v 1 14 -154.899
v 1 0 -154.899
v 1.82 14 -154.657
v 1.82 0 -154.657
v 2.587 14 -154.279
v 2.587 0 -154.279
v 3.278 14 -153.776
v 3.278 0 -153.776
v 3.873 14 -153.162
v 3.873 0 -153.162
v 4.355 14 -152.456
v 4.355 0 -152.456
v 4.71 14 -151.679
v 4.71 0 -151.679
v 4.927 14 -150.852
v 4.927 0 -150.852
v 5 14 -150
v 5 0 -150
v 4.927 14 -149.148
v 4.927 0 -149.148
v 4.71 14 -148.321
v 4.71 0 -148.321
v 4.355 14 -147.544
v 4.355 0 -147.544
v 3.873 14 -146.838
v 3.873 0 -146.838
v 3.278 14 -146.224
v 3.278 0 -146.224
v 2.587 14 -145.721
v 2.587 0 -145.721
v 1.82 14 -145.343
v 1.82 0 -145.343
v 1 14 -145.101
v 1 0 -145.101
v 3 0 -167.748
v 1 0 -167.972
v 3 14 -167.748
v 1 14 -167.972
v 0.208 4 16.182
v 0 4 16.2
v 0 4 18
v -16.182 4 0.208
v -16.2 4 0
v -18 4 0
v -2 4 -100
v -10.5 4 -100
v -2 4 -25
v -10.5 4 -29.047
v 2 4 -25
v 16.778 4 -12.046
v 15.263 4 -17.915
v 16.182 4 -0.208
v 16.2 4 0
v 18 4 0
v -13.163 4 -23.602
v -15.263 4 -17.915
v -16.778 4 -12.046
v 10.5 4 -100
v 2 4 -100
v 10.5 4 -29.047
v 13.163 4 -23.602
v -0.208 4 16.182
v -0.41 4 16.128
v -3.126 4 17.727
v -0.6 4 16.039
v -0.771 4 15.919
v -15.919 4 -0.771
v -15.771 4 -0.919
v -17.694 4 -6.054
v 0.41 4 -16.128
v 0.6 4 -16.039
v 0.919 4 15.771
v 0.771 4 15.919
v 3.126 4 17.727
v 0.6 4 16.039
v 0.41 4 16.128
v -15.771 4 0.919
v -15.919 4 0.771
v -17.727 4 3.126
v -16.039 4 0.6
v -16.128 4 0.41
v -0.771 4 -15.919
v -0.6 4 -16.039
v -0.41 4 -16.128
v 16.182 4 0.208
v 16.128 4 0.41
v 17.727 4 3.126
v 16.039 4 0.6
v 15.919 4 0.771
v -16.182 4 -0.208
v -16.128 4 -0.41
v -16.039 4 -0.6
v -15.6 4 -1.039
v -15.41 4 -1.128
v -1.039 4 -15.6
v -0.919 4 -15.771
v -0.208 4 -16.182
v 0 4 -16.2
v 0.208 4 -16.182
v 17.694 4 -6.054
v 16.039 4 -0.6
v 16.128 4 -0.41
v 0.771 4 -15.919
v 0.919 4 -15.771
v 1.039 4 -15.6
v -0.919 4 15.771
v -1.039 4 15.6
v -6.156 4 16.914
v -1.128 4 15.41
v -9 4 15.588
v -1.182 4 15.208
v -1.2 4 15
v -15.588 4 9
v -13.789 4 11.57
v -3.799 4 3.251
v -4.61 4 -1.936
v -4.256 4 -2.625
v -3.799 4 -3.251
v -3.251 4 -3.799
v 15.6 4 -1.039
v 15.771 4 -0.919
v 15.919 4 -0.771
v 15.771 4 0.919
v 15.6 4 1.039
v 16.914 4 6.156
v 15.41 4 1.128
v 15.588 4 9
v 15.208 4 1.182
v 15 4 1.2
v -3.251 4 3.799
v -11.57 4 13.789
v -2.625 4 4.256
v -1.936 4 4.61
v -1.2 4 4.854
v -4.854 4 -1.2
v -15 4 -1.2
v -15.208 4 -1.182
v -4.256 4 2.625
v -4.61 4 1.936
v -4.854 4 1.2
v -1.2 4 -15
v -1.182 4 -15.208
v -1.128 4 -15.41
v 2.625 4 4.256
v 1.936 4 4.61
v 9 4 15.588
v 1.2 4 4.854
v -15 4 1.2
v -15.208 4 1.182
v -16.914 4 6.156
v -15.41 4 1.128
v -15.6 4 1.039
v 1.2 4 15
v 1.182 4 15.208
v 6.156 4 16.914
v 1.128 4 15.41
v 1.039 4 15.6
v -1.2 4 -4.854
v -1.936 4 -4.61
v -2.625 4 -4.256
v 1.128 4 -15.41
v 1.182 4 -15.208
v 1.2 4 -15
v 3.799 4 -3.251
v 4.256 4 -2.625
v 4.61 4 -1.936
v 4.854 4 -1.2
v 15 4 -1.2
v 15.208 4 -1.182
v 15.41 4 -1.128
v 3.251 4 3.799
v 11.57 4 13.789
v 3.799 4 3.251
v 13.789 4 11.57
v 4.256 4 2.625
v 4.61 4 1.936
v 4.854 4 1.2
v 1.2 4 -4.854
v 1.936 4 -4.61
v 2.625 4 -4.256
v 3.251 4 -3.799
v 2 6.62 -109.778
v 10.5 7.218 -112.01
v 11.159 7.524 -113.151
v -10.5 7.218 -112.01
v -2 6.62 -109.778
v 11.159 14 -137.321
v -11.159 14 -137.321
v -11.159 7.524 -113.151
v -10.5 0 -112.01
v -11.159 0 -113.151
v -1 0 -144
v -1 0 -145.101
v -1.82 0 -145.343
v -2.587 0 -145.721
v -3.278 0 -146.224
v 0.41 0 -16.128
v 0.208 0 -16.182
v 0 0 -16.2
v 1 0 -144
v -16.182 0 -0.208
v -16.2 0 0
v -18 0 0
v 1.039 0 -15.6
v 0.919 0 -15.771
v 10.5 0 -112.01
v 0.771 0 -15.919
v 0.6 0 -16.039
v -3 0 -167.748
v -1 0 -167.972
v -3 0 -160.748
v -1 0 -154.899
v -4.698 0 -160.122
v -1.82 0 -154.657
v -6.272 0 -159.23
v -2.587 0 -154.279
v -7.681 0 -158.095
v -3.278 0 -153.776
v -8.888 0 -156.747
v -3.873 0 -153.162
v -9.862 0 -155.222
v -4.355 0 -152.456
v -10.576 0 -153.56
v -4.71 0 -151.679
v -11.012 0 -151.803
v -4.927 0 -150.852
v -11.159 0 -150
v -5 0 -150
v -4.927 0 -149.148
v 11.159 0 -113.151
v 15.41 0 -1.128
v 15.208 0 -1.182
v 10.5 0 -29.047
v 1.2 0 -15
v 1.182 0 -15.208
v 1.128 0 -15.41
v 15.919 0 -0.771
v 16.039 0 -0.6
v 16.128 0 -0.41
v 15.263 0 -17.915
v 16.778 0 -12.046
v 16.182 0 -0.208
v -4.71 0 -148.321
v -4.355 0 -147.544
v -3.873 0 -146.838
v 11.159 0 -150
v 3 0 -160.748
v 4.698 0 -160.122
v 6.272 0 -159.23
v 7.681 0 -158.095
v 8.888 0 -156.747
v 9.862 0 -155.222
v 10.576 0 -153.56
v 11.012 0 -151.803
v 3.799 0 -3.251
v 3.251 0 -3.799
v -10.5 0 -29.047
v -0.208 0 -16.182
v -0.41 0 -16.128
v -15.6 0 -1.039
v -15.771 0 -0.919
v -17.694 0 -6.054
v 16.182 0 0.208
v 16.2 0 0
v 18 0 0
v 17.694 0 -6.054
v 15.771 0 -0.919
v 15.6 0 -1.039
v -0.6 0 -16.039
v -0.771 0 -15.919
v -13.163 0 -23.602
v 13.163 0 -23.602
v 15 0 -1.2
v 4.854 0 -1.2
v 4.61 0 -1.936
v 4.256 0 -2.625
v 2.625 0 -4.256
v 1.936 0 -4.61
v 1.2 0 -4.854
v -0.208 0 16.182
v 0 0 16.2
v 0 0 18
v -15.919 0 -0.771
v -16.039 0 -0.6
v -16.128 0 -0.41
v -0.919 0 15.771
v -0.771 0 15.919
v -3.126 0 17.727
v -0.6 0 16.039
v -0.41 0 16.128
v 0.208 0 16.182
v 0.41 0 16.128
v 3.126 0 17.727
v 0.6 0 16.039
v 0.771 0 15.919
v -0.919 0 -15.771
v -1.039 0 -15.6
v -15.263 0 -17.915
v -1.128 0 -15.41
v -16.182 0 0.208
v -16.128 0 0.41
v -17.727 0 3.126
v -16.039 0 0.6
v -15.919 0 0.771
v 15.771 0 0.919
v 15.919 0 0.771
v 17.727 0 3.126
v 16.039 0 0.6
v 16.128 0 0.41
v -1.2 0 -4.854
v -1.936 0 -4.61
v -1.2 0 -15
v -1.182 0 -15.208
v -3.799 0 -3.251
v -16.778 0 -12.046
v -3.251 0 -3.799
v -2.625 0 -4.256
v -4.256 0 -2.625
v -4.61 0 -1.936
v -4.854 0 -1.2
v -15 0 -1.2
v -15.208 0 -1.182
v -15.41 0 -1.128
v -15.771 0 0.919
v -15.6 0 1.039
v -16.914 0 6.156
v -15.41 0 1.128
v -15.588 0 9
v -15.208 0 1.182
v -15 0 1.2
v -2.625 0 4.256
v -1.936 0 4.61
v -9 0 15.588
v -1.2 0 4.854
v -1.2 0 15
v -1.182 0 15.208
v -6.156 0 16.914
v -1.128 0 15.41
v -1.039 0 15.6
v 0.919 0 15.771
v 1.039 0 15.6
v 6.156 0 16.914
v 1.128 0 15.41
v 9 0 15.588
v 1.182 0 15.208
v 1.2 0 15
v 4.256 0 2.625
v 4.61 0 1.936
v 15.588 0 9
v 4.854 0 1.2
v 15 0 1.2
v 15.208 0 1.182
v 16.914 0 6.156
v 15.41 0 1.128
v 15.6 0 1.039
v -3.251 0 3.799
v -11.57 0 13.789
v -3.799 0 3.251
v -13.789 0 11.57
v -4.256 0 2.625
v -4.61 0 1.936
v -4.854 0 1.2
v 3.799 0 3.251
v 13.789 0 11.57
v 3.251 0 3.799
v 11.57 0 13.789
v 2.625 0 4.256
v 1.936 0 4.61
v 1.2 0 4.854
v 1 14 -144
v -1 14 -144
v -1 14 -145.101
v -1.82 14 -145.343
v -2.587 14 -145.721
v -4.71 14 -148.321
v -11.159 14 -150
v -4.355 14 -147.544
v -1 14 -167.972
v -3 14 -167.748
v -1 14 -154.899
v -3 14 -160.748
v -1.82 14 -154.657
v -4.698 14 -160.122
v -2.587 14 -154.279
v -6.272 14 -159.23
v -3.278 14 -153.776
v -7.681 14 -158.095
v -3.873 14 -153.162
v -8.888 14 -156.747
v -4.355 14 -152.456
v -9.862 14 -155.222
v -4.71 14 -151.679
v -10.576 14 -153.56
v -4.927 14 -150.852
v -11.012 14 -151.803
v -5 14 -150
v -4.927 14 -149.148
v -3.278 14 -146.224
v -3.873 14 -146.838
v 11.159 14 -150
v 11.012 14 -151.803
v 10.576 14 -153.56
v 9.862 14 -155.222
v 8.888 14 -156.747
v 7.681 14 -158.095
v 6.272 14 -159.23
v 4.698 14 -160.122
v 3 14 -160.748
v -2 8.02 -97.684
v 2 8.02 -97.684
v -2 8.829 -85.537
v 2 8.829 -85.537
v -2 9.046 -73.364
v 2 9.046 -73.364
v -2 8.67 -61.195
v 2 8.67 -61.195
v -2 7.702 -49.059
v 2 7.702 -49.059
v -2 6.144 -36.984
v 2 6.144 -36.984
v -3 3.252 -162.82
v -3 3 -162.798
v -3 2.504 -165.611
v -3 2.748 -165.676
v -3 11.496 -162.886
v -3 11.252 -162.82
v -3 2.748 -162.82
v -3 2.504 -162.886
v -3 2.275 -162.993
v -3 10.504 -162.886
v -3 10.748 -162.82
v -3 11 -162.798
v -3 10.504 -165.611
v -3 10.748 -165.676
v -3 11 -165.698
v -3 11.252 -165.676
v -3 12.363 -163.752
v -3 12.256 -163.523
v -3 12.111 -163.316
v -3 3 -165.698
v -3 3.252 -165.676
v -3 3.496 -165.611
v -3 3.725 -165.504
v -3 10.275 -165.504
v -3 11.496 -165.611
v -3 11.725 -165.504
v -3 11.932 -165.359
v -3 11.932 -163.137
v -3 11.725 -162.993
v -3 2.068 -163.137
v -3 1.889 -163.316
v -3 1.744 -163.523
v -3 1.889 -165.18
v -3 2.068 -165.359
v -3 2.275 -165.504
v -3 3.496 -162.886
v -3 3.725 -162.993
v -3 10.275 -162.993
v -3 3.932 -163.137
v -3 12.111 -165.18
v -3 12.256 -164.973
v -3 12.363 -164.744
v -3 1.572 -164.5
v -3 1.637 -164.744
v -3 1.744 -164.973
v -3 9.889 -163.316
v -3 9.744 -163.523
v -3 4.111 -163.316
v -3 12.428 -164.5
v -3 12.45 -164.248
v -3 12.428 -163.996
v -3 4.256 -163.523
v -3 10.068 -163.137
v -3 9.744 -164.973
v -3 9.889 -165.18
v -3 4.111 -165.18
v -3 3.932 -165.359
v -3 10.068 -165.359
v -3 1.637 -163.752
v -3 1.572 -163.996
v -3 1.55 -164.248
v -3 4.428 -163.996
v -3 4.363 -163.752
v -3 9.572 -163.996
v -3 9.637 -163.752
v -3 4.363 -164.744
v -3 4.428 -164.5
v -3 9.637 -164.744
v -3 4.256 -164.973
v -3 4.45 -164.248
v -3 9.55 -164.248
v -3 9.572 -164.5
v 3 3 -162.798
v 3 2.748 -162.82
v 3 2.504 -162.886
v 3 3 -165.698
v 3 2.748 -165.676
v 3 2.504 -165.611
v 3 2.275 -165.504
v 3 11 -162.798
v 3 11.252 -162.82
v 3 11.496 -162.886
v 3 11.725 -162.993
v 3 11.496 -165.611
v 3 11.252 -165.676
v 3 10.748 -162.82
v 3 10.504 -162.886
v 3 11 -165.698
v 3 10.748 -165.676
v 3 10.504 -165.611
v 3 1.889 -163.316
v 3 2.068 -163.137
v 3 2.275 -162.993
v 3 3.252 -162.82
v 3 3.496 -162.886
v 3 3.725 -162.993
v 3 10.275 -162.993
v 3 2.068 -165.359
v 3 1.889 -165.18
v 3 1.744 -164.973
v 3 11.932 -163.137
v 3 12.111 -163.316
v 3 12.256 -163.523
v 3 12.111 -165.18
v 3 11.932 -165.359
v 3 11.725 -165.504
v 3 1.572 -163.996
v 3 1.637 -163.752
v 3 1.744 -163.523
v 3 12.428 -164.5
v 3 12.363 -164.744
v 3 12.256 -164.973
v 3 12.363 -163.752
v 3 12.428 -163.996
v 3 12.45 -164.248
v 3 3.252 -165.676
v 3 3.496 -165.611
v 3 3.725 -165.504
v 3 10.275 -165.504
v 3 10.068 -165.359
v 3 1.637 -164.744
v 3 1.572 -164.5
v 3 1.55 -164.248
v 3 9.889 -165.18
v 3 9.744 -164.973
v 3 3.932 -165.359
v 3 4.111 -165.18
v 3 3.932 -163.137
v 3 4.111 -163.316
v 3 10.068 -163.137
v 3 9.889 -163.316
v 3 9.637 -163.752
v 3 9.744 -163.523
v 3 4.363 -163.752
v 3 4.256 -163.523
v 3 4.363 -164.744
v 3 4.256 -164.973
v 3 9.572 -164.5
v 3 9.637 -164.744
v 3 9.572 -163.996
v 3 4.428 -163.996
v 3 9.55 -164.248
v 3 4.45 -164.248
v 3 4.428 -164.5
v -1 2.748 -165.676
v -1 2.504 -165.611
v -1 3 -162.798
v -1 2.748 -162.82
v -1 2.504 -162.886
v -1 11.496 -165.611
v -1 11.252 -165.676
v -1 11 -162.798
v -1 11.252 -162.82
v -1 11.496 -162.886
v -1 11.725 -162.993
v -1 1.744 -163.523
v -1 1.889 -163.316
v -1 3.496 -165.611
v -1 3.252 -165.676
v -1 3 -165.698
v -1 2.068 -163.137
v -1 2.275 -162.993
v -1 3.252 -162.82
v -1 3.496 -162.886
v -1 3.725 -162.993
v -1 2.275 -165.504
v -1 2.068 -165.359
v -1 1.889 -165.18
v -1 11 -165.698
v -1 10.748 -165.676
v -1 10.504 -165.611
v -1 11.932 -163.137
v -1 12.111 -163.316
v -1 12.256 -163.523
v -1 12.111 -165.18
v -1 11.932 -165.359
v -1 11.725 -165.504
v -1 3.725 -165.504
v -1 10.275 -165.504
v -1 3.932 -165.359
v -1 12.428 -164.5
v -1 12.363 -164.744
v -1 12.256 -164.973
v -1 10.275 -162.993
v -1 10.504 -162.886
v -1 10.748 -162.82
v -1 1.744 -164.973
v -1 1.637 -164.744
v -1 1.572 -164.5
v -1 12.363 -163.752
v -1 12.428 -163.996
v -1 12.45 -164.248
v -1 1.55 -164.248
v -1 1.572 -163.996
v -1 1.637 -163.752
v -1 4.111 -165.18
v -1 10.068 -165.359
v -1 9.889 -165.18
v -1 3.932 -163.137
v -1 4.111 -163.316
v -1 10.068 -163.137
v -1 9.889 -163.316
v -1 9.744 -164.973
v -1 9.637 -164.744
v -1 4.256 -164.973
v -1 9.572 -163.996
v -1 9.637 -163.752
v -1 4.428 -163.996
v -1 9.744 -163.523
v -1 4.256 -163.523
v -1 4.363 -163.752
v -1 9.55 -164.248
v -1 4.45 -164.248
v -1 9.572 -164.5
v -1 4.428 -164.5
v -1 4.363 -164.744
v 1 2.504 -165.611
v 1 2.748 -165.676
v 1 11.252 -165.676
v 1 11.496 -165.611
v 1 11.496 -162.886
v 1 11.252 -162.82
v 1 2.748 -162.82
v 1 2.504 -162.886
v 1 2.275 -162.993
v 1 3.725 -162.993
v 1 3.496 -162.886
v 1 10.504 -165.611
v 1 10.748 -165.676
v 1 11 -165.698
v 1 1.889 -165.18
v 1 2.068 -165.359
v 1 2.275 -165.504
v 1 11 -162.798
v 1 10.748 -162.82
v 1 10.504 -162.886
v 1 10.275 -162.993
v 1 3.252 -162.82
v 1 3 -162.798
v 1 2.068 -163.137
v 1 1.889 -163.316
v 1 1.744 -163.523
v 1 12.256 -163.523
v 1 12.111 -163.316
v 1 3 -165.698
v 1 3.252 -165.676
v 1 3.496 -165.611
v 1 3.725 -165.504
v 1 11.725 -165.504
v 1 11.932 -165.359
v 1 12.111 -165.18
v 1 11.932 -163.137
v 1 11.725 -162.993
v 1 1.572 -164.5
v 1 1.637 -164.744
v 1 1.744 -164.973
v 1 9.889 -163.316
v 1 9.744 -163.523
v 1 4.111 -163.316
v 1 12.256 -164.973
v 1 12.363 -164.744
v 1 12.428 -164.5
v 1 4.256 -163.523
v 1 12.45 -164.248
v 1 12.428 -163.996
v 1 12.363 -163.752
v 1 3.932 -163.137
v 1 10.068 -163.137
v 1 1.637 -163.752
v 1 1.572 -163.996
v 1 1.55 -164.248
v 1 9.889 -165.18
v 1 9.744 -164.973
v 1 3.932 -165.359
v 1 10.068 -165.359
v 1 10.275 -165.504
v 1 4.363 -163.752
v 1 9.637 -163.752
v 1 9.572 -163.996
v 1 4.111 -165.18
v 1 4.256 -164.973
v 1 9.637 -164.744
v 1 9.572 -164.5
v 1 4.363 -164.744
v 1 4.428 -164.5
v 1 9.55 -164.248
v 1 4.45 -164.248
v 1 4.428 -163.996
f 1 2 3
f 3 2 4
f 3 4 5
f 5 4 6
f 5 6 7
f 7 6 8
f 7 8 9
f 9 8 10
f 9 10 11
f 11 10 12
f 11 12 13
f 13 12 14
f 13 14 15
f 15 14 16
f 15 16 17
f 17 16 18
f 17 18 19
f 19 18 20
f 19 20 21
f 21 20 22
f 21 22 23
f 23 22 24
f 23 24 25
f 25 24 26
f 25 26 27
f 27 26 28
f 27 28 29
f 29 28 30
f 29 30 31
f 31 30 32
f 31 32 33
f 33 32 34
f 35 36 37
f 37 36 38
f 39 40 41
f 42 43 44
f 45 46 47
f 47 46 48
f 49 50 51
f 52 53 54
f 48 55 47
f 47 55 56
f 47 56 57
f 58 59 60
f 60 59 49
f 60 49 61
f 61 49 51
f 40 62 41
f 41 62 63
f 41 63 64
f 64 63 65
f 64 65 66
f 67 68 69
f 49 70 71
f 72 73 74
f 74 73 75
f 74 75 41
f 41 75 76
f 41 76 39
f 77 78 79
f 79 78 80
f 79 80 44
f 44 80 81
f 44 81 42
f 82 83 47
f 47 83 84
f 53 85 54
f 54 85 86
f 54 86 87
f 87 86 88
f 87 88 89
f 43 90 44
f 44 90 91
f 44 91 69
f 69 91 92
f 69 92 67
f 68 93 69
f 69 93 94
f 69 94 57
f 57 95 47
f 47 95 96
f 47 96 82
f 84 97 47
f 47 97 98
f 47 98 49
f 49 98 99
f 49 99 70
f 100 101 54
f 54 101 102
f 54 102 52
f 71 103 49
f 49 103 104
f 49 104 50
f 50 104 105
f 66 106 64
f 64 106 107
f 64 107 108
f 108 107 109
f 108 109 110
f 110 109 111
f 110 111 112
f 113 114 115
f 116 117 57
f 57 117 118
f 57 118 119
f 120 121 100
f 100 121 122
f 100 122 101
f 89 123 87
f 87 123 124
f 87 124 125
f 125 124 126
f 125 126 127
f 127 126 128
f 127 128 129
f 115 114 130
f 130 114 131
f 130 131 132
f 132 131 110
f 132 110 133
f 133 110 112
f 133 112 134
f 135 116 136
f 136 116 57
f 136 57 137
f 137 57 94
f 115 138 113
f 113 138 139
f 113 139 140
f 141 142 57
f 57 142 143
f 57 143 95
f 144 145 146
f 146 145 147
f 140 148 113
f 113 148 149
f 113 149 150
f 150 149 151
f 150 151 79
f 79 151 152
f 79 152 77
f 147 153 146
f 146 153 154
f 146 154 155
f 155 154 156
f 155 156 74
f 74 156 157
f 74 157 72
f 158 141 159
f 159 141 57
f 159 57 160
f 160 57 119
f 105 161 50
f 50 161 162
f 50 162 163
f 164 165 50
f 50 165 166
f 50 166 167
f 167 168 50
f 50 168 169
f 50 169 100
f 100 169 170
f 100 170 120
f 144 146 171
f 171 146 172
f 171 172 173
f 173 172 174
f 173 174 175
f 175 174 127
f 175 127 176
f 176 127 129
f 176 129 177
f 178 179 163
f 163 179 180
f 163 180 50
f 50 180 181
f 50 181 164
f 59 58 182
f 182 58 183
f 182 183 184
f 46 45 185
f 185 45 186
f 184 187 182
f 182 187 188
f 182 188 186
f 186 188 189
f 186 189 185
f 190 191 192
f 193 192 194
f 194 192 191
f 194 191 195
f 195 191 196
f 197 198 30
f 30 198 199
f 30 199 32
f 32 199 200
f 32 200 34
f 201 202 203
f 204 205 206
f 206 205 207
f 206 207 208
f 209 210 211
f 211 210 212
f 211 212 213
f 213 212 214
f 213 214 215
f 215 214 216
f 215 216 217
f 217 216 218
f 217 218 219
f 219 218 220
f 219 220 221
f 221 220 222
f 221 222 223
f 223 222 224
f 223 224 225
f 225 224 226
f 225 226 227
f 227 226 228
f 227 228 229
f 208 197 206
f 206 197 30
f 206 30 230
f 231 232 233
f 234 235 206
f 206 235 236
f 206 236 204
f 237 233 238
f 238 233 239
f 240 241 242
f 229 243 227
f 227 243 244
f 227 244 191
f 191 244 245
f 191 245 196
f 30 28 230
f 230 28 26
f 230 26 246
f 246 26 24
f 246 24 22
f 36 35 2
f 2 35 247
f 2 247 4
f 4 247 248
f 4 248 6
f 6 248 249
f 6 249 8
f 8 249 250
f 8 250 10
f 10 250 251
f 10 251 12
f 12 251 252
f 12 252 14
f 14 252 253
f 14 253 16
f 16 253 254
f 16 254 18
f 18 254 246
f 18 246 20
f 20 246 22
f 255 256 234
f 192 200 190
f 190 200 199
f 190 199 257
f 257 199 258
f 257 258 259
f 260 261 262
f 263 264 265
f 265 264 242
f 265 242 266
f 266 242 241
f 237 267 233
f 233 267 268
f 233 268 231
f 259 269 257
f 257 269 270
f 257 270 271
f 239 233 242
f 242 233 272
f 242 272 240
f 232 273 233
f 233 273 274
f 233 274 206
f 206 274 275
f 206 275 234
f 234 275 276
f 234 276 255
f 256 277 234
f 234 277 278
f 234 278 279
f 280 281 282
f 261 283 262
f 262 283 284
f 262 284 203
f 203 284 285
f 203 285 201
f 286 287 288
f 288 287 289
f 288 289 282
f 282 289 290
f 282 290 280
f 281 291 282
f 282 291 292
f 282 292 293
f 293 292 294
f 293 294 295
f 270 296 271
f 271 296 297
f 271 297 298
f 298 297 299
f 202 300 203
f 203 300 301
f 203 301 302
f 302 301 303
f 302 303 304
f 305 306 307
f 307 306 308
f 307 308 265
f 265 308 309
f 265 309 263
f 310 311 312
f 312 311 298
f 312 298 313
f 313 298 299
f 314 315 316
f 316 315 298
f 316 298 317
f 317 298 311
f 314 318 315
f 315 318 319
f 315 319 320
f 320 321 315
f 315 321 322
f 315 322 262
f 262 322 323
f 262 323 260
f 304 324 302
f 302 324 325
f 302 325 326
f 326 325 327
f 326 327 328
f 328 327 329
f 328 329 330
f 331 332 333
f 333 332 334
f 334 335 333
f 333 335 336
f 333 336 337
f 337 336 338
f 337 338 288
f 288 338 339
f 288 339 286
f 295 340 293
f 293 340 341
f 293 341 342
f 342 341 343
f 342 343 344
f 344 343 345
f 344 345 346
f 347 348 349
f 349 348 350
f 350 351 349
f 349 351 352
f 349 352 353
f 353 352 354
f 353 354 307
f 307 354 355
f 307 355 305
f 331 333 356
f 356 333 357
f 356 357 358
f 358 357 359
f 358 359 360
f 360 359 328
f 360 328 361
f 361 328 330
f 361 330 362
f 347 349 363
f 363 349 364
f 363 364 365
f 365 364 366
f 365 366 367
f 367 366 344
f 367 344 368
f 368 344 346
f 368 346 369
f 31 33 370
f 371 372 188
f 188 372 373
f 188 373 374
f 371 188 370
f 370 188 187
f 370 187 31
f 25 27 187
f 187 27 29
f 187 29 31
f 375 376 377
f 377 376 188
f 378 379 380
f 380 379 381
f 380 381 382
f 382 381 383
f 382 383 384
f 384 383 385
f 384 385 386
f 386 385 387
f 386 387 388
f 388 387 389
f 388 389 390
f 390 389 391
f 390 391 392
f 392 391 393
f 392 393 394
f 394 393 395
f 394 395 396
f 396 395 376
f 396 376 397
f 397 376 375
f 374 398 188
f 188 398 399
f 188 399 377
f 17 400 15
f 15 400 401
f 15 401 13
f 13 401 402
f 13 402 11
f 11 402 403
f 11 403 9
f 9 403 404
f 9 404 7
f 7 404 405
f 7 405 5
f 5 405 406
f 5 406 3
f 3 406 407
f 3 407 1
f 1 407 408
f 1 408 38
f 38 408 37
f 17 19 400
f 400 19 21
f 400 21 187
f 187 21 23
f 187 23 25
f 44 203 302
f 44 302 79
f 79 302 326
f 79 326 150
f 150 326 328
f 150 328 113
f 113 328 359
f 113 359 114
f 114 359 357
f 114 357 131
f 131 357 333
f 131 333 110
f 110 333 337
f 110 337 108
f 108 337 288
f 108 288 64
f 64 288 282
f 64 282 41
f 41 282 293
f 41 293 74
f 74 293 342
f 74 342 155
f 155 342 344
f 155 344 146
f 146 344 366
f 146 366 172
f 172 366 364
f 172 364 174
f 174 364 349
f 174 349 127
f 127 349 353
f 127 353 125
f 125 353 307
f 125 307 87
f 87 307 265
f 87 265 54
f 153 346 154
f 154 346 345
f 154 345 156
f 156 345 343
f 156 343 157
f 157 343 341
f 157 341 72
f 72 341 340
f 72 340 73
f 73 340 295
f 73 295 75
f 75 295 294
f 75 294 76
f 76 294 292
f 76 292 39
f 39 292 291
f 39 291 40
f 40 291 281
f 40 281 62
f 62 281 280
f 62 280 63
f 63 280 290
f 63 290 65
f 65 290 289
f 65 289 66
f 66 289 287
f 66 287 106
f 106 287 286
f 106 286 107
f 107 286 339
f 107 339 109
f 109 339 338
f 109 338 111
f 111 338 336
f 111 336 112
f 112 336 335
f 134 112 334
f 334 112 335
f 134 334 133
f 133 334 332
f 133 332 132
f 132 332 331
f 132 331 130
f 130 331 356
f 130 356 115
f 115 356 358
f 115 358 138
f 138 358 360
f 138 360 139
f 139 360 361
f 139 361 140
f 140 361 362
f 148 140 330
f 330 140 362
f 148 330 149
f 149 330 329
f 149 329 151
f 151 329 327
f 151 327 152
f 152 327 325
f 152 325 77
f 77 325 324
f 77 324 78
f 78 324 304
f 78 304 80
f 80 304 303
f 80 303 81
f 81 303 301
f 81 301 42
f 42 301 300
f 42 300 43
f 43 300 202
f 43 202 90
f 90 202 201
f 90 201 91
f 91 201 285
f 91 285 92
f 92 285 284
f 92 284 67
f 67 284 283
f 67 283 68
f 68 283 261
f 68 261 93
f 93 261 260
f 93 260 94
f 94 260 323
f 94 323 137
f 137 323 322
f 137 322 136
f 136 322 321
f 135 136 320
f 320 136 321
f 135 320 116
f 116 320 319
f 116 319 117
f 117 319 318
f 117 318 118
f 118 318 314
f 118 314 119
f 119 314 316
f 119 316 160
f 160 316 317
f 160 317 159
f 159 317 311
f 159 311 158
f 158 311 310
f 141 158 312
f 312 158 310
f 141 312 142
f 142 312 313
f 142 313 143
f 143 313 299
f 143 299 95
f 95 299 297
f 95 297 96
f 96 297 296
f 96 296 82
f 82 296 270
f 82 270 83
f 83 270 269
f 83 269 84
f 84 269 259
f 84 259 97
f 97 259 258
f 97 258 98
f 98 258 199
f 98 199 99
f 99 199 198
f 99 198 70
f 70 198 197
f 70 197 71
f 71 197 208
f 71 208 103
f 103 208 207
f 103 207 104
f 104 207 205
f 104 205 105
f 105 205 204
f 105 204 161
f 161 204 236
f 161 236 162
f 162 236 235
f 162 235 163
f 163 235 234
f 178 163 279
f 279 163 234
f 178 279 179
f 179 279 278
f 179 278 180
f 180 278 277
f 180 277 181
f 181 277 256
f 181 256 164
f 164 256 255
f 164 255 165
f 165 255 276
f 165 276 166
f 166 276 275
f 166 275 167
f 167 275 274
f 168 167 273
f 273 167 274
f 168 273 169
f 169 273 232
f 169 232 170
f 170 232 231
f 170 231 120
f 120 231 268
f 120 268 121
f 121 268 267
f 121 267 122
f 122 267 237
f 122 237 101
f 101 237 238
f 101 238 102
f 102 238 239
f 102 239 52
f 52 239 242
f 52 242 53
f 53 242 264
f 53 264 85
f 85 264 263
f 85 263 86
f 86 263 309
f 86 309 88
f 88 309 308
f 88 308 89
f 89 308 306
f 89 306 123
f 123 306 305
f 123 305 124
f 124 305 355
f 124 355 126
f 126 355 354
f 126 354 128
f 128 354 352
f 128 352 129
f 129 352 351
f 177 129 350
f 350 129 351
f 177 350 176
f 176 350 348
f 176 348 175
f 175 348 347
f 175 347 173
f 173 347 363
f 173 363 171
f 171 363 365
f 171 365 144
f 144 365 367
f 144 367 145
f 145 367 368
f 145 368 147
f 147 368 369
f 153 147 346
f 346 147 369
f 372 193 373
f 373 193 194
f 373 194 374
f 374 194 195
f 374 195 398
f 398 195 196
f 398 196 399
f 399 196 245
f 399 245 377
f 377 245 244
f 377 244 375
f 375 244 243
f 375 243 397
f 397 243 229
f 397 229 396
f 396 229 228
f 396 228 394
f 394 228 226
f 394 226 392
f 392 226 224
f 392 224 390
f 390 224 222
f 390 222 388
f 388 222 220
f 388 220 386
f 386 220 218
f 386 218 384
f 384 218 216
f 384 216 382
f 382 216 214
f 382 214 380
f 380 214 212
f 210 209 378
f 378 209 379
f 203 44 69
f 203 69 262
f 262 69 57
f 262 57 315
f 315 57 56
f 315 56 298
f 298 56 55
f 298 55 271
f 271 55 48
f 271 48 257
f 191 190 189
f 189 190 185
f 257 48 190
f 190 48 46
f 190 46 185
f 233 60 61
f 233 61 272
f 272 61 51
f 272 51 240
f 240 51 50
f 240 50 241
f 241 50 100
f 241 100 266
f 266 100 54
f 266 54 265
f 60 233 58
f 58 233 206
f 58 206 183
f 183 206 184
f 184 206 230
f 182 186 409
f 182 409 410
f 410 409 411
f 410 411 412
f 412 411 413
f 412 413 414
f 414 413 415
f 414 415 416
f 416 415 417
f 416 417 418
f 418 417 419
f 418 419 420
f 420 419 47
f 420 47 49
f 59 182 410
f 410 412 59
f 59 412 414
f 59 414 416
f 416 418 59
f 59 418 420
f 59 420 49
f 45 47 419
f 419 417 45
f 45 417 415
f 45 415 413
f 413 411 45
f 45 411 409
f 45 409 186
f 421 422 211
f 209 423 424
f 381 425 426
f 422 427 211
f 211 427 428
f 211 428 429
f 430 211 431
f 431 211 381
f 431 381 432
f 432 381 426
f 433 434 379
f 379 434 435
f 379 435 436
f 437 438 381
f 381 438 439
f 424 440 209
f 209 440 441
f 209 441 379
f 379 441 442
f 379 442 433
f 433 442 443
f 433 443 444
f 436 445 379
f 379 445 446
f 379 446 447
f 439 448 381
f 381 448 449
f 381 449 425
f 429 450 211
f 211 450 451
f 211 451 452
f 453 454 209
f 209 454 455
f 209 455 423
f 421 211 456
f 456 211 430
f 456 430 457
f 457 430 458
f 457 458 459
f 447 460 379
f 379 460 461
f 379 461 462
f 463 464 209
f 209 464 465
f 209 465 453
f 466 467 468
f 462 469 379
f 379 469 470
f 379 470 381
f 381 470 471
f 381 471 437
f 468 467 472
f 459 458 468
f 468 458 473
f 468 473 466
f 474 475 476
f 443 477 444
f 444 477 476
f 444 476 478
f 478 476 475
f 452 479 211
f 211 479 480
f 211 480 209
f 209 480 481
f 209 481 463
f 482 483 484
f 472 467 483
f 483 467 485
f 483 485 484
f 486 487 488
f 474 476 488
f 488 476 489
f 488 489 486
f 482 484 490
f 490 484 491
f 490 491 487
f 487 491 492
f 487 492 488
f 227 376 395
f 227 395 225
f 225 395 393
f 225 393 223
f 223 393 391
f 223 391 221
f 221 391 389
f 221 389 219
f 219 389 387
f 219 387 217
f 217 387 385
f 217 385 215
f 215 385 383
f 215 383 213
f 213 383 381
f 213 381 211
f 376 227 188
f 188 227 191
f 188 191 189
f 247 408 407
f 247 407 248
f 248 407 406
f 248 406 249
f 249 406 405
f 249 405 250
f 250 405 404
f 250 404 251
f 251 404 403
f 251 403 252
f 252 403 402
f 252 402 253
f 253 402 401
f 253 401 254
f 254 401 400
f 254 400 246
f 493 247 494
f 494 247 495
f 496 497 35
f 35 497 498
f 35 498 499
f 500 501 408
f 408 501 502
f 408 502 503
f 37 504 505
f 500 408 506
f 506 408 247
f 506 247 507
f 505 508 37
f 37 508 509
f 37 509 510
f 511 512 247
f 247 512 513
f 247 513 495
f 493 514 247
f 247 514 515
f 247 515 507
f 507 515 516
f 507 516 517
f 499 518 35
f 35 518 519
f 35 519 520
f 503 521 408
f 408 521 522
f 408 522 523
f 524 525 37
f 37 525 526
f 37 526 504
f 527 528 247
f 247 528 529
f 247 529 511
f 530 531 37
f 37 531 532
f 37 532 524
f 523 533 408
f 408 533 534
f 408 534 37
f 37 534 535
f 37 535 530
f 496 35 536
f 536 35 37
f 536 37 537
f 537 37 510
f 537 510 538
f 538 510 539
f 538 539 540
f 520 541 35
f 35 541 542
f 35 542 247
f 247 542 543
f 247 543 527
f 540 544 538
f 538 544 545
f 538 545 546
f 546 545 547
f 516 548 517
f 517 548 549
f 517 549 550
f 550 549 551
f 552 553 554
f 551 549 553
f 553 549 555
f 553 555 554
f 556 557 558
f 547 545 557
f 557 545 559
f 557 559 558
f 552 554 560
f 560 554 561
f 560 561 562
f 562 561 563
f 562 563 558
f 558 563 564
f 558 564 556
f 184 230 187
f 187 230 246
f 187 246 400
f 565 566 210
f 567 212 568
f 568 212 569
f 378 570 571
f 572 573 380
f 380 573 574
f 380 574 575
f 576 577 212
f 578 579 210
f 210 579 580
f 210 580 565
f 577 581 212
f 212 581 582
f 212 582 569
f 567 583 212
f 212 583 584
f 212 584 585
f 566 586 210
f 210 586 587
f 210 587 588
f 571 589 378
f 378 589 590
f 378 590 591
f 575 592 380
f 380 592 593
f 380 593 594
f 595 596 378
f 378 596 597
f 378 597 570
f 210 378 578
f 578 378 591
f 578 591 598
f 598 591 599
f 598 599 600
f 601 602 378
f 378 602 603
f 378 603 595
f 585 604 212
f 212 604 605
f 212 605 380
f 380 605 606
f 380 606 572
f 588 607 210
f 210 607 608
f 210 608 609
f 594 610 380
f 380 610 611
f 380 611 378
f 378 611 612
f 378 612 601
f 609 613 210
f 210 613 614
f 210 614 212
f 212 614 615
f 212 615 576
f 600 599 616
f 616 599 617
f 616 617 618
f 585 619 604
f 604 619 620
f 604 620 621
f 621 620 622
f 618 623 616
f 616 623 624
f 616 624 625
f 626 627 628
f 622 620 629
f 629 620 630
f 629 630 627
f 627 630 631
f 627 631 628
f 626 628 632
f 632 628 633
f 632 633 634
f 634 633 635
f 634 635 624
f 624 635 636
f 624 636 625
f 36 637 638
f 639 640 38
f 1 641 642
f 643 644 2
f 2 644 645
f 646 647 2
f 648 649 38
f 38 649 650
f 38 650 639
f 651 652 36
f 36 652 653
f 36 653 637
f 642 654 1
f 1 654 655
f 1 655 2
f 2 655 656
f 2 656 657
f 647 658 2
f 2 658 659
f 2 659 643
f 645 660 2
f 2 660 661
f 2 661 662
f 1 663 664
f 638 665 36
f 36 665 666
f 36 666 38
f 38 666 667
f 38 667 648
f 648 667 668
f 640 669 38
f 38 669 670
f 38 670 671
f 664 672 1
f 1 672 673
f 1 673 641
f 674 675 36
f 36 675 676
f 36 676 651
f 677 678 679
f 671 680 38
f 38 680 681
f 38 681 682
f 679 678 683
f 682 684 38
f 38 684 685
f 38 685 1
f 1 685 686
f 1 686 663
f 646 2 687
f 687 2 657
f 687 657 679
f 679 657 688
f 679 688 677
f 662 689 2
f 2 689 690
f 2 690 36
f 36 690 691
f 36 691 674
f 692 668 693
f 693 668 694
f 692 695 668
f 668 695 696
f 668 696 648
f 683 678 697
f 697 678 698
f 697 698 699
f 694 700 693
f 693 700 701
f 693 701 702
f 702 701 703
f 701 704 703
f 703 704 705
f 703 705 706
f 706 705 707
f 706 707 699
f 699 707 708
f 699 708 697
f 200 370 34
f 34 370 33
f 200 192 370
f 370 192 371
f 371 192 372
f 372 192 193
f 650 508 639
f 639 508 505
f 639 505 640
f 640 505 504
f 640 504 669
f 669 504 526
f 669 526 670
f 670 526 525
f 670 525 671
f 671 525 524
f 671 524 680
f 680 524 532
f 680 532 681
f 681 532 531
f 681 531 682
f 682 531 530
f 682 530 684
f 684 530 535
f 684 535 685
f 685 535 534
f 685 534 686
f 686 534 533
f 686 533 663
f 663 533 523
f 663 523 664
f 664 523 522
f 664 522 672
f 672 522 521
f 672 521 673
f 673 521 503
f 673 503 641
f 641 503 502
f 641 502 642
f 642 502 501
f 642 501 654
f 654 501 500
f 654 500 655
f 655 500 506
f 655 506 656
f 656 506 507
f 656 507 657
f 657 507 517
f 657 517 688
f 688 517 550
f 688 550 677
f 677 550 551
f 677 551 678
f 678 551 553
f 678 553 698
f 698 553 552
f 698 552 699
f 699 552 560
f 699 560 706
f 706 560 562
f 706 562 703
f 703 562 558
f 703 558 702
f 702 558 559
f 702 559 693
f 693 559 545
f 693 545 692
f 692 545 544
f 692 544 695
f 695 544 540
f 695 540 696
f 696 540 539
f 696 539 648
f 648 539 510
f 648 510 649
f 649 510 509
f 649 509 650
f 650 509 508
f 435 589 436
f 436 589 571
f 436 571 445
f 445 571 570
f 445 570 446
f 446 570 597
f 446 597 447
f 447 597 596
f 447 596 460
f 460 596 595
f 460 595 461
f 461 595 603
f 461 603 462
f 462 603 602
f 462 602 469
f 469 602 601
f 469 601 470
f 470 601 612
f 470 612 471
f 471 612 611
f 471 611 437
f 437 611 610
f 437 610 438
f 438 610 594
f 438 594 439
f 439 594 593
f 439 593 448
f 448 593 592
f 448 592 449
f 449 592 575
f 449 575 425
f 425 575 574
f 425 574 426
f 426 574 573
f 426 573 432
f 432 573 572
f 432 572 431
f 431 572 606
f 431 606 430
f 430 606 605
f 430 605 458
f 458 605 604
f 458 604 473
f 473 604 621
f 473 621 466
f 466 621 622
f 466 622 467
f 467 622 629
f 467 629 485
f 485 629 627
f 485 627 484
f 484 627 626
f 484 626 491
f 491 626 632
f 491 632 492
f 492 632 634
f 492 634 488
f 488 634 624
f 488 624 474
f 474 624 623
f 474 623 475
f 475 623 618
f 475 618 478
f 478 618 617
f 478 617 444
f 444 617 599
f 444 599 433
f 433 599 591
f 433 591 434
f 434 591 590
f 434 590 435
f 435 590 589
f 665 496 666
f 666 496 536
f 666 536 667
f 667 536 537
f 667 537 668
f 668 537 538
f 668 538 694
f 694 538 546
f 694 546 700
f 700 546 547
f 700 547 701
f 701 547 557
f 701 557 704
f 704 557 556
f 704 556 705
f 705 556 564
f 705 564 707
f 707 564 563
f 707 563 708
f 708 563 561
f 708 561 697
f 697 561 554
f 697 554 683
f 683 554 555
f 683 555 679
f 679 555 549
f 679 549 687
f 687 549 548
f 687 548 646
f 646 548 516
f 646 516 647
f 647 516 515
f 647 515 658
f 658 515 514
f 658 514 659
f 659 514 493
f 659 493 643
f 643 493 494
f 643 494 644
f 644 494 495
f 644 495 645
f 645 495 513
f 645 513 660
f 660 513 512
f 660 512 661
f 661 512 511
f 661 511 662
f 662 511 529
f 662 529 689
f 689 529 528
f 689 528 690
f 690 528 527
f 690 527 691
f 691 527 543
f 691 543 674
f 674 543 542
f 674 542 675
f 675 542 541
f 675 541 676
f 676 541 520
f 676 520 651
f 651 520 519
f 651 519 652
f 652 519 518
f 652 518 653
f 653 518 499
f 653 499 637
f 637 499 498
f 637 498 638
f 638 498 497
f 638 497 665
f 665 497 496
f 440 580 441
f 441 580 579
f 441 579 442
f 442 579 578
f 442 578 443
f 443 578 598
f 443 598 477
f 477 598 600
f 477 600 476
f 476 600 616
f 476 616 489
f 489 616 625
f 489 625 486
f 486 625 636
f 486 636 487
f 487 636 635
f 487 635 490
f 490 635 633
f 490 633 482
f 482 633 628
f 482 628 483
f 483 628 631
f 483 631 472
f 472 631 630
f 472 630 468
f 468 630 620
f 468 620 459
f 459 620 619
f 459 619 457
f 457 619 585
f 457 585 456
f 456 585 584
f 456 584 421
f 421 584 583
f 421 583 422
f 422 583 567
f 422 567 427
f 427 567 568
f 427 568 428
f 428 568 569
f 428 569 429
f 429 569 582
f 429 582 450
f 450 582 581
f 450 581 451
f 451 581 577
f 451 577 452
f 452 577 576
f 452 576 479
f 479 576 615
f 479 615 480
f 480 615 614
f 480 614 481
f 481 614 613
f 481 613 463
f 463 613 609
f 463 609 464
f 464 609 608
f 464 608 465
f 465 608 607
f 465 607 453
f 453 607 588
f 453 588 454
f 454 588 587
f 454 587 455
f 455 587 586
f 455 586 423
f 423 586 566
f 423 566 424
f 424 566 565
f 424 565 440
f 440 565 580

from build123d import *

# Parameters (mm, degrees)
SKETCH_1_R          = 5
EXTRUDE_1_DEPTH     = 4
SKETCH_2_R          = 5
EXTRUDE_2_DEPTH     = 10
CUT_EXTRUDE_2_DEPTH = 170.257200733
CHAMFER_1_SIZE      = 37.320508076
CHAMFER_1_SIZE_2    = 10
EXTRUDE_3_DEPTH     = 2
SKETCH_6_W          = 2
SKETCH_6_H          = 48
CUT_EXTRUDE_4_DEPTH = 170.54055562
SKETCH_7_R          = 1.45
CUT_EXTRUDE_5_DEPTH = 170.857764694


with BuildPart() as part:
    # 스케치1 → 보스-돌출1 (new body)
    with BuildSketch(Plane(origin=(0, 0, 0), x_dir=(1, 0, 0), z_dir=(0, 1, 0))):
        with BuildLine():
            ThreePointArc((18, 150), (0, 168), (-18, 150))
            Line((-18, 150), (-18, 0))
            ThreePointArc((-18, 0), (0, -18), (18, 0))
            Line((18, 0), (18, 150))
        make_face()
        with BuildLine():
            ThreePointArc((-15, -1.2), (-16.2, 0), (-15, 1.2))
            Line((-15, 1.2), (-4.85386444, 1.2))
            ThreePointArc((-4.85386444, 1.2), (-3.535533906, 3.535533906), (-1.2, 4.85386444))
            Line((-1.2, 4.85386444), (-1.2, 15))
            ThreePointArc((-1.2, 15), (0, 16.2), (1.2, 15))
            Line((1.2, 15), (1.2, 4.85386444))
            ThreePointArc((1.2, 4.85386444), (3.535533906, 3.535533906), (4.85386444, 1.2))
            Line((4.85386444, 1.2), (15, 1.2))
            ThreePointArc((15, 1.2), (16.2, 0), (15, -1.2))
            Line((15, -1.2), (4.85386444, -1.2))
            ThreePointArc((4.85386444, -1.2), (3.535533906, -3.535533906), (1.2, -4.85386444))
            Line((1.2, -4.85386444), (1.2, -15))
            ThreePointArc((1.2, -15), (0, -16.2), (-1.2, -15))
            Line((-1.2, -15), (-1.2, -4.85386444))
            ThreePointArc((-1.2, -4.85386444), (-3.535533906, -3.535533906), (-4.85386444, -1.2))
            Line((-4.85386444, -1.2), (-15, -1.2))
        make_face(mode=Mode.SUBTRACT)
        with Locations(Location((0, 150, 0), (0, 0, 270))):
            Circle(SKETCH_1_R, mode=Mode.SUBTRACT)
    extrude(amount=EXTRUDE_1_DEPTH)

    # 스케치2 → 보스-돌출2 (add)
    with BuildSketch(Plane(origin=(0, 4, 0), x_dir=(1, 0, 0), z_dir=(0, 1, 0))):
        with BuildLine():
            Line((-18, 100), (18, 100))
            Line((18, 100), (18, 150))
            ThreePointArc((18, 150), (0, 168), (-18, 150))
            Line((-18, 150), (-18, 100))
        make_face()
        with Locations(Location((0, 150, 0), (0, 0, 270))):
            Circle(SKETCH_2_R, mode=Mode.SUBTRACT)
    extrude(amount=EXTRUDE_2_DEPTH)

    # 스케치4 → 컷-돌출2 (cut, symmetric)
    with BuildSketch(Plane(origin=(0, 4, 0), x_dir=(1, 0, 0), z_dir=(0, 1, 0))):
        with BuildLine():
            Line((-10.5, 29.047375097), (-10.5, 112.009618943))
            Line((-10.5, 112.009618943), (-18, 125))
            Line((-18, 125), (-18, 0))
            ThreePointArc((-18, 0), (-16.094750193, 15), (-10.5, 29.047375097))
        make_face()
    cut_extrude_2 = extrude(amount=CUT_EXTRUDE_2_DEPTH, both=True, mode=Mode.SUBTRACT)

    # 대칭 복사1: 컷-돌출2 across plane
    add(cut_extrude_2.mirror(Plane(origin=(0, 0, 0), x_dir=(0, 0, 1), z_dir=(1, 0, 0))), mode=Mode.SUBTRACT)

    # 모따기1
    # the kernel refuses this chamfer: 37.320508076, 10 mm, written as the material it takes off along each edge
    with BuildSketch(Plane(origin=(-107.410968331, 14, -100), x_dir=(0, 0.009967146577156314, -0.9999503267608394), z_dir=(1, 0, 0))) as chamfer_1_piece_1_section:
        Polygon((CHAMFER_1_SIZE * 0.999950326753, -CHAMFER_1_SIZE * 0.00996714657707), (-CHAMFER_1_SIZE_2 * 0.00996714657716, -CHAMFER_1_SIZE_2 * 0.999950326761), (0, 0), align=None)
    chamfer_1_piece_1 = extrude(amount=214.821936662, mode=Mode.PRIVATE)
    chamfer_1_piece_1 = split(chamfer_1_piece_1, bisect_by=Plane(origin=(0, 4, -113.026597383), z_dir=(0, 1, 0)), keep=Keep.TOP, mode=Mode.PRIVATE)
    add(chamfer_1_piece_1, mode=Mode.SUBTRACT)

    # 스케치5 → 보스-돌출3 (add, symmetric)
    with BuildSketch(Plane(origin=(0, 0, 0), x_dir=(0, 0, -1), z_dir=(1, 0, 0))):
        with BuildLine():
            Line((25, 4), (125, 4))
            ThreePointArc((125, 4), (75, 9.051025722), (25, 4))
        make_face()
    extrude(amount=EXTRUDE_3_DEPTH, both=True)

    # 스케치6 → 컷-돌출4 (cut, through all)
    with BuildSketch(Plane(origin=(0, 14, 0), x_dir=(1, 0, 0), z_dir=(0, 1, 0))):
        with BuildLine():
            Line((-3, 167.748239349), (-3, 160.748239349))
            ThreePointArc((-3, 160.748239349), (-8.888245975, 156.74712773), (-11.159061301, 150))
            Line((-11.159061301, 150), (-11.159061301, 113.151146601))
            Line((-11.159061301, 113.151146601), (-22.159061301, 113.151146601))
            Line((-22.159061301, 113.151146601), (-22.159061301, 167.748239349))
            Line((-22.159061301, 167.748239349), (-3, 167.748239349))
        make_face()
        with BuildLine():
            Line((22.159061301, 167.748239349), (3, 167.748239349))
            Line((3, 167.748239349), (3, 160.748239349))
            ThreePointArc((3, 160.748239349), (8.888245975, 156.74712773), (11.159061301, 150))
            Line((11.159061301, 150), (11.159061301, 113.151146601))
            Line((11.159061301, 113.151146601), (22.159061301, 113.151146601))
            Line((22.159061301, 113.151146601), (22.159061301, 167.748239349))
        make_face()
        with Locations((0, 168)):
            Rectangle(SKETCH_6_W, SKETCH_6_H)
    extrude(amount=-CUT_EXTRUDE_4_DEPTH, mode=Mode.SUBTRACT)

    # 스케치7 → 컷-돌출5 (cut, through all)
    with BuildSketch(Plane(origin=(3, 0, 0), x_dir=(0, 0, -1), z_dir=(1, 0, 0))):
        with Locations((164.248239349, 11)):
            Circle(SKETCH_7_R)
        with Locations((164.248239349, 3)):
            Circle(SKETCH_7_R)
    extrude(amount=-CUT_EXTRUDE_5_DEPTH, mode=Mode.SUBTRACT)


solid = part.part
